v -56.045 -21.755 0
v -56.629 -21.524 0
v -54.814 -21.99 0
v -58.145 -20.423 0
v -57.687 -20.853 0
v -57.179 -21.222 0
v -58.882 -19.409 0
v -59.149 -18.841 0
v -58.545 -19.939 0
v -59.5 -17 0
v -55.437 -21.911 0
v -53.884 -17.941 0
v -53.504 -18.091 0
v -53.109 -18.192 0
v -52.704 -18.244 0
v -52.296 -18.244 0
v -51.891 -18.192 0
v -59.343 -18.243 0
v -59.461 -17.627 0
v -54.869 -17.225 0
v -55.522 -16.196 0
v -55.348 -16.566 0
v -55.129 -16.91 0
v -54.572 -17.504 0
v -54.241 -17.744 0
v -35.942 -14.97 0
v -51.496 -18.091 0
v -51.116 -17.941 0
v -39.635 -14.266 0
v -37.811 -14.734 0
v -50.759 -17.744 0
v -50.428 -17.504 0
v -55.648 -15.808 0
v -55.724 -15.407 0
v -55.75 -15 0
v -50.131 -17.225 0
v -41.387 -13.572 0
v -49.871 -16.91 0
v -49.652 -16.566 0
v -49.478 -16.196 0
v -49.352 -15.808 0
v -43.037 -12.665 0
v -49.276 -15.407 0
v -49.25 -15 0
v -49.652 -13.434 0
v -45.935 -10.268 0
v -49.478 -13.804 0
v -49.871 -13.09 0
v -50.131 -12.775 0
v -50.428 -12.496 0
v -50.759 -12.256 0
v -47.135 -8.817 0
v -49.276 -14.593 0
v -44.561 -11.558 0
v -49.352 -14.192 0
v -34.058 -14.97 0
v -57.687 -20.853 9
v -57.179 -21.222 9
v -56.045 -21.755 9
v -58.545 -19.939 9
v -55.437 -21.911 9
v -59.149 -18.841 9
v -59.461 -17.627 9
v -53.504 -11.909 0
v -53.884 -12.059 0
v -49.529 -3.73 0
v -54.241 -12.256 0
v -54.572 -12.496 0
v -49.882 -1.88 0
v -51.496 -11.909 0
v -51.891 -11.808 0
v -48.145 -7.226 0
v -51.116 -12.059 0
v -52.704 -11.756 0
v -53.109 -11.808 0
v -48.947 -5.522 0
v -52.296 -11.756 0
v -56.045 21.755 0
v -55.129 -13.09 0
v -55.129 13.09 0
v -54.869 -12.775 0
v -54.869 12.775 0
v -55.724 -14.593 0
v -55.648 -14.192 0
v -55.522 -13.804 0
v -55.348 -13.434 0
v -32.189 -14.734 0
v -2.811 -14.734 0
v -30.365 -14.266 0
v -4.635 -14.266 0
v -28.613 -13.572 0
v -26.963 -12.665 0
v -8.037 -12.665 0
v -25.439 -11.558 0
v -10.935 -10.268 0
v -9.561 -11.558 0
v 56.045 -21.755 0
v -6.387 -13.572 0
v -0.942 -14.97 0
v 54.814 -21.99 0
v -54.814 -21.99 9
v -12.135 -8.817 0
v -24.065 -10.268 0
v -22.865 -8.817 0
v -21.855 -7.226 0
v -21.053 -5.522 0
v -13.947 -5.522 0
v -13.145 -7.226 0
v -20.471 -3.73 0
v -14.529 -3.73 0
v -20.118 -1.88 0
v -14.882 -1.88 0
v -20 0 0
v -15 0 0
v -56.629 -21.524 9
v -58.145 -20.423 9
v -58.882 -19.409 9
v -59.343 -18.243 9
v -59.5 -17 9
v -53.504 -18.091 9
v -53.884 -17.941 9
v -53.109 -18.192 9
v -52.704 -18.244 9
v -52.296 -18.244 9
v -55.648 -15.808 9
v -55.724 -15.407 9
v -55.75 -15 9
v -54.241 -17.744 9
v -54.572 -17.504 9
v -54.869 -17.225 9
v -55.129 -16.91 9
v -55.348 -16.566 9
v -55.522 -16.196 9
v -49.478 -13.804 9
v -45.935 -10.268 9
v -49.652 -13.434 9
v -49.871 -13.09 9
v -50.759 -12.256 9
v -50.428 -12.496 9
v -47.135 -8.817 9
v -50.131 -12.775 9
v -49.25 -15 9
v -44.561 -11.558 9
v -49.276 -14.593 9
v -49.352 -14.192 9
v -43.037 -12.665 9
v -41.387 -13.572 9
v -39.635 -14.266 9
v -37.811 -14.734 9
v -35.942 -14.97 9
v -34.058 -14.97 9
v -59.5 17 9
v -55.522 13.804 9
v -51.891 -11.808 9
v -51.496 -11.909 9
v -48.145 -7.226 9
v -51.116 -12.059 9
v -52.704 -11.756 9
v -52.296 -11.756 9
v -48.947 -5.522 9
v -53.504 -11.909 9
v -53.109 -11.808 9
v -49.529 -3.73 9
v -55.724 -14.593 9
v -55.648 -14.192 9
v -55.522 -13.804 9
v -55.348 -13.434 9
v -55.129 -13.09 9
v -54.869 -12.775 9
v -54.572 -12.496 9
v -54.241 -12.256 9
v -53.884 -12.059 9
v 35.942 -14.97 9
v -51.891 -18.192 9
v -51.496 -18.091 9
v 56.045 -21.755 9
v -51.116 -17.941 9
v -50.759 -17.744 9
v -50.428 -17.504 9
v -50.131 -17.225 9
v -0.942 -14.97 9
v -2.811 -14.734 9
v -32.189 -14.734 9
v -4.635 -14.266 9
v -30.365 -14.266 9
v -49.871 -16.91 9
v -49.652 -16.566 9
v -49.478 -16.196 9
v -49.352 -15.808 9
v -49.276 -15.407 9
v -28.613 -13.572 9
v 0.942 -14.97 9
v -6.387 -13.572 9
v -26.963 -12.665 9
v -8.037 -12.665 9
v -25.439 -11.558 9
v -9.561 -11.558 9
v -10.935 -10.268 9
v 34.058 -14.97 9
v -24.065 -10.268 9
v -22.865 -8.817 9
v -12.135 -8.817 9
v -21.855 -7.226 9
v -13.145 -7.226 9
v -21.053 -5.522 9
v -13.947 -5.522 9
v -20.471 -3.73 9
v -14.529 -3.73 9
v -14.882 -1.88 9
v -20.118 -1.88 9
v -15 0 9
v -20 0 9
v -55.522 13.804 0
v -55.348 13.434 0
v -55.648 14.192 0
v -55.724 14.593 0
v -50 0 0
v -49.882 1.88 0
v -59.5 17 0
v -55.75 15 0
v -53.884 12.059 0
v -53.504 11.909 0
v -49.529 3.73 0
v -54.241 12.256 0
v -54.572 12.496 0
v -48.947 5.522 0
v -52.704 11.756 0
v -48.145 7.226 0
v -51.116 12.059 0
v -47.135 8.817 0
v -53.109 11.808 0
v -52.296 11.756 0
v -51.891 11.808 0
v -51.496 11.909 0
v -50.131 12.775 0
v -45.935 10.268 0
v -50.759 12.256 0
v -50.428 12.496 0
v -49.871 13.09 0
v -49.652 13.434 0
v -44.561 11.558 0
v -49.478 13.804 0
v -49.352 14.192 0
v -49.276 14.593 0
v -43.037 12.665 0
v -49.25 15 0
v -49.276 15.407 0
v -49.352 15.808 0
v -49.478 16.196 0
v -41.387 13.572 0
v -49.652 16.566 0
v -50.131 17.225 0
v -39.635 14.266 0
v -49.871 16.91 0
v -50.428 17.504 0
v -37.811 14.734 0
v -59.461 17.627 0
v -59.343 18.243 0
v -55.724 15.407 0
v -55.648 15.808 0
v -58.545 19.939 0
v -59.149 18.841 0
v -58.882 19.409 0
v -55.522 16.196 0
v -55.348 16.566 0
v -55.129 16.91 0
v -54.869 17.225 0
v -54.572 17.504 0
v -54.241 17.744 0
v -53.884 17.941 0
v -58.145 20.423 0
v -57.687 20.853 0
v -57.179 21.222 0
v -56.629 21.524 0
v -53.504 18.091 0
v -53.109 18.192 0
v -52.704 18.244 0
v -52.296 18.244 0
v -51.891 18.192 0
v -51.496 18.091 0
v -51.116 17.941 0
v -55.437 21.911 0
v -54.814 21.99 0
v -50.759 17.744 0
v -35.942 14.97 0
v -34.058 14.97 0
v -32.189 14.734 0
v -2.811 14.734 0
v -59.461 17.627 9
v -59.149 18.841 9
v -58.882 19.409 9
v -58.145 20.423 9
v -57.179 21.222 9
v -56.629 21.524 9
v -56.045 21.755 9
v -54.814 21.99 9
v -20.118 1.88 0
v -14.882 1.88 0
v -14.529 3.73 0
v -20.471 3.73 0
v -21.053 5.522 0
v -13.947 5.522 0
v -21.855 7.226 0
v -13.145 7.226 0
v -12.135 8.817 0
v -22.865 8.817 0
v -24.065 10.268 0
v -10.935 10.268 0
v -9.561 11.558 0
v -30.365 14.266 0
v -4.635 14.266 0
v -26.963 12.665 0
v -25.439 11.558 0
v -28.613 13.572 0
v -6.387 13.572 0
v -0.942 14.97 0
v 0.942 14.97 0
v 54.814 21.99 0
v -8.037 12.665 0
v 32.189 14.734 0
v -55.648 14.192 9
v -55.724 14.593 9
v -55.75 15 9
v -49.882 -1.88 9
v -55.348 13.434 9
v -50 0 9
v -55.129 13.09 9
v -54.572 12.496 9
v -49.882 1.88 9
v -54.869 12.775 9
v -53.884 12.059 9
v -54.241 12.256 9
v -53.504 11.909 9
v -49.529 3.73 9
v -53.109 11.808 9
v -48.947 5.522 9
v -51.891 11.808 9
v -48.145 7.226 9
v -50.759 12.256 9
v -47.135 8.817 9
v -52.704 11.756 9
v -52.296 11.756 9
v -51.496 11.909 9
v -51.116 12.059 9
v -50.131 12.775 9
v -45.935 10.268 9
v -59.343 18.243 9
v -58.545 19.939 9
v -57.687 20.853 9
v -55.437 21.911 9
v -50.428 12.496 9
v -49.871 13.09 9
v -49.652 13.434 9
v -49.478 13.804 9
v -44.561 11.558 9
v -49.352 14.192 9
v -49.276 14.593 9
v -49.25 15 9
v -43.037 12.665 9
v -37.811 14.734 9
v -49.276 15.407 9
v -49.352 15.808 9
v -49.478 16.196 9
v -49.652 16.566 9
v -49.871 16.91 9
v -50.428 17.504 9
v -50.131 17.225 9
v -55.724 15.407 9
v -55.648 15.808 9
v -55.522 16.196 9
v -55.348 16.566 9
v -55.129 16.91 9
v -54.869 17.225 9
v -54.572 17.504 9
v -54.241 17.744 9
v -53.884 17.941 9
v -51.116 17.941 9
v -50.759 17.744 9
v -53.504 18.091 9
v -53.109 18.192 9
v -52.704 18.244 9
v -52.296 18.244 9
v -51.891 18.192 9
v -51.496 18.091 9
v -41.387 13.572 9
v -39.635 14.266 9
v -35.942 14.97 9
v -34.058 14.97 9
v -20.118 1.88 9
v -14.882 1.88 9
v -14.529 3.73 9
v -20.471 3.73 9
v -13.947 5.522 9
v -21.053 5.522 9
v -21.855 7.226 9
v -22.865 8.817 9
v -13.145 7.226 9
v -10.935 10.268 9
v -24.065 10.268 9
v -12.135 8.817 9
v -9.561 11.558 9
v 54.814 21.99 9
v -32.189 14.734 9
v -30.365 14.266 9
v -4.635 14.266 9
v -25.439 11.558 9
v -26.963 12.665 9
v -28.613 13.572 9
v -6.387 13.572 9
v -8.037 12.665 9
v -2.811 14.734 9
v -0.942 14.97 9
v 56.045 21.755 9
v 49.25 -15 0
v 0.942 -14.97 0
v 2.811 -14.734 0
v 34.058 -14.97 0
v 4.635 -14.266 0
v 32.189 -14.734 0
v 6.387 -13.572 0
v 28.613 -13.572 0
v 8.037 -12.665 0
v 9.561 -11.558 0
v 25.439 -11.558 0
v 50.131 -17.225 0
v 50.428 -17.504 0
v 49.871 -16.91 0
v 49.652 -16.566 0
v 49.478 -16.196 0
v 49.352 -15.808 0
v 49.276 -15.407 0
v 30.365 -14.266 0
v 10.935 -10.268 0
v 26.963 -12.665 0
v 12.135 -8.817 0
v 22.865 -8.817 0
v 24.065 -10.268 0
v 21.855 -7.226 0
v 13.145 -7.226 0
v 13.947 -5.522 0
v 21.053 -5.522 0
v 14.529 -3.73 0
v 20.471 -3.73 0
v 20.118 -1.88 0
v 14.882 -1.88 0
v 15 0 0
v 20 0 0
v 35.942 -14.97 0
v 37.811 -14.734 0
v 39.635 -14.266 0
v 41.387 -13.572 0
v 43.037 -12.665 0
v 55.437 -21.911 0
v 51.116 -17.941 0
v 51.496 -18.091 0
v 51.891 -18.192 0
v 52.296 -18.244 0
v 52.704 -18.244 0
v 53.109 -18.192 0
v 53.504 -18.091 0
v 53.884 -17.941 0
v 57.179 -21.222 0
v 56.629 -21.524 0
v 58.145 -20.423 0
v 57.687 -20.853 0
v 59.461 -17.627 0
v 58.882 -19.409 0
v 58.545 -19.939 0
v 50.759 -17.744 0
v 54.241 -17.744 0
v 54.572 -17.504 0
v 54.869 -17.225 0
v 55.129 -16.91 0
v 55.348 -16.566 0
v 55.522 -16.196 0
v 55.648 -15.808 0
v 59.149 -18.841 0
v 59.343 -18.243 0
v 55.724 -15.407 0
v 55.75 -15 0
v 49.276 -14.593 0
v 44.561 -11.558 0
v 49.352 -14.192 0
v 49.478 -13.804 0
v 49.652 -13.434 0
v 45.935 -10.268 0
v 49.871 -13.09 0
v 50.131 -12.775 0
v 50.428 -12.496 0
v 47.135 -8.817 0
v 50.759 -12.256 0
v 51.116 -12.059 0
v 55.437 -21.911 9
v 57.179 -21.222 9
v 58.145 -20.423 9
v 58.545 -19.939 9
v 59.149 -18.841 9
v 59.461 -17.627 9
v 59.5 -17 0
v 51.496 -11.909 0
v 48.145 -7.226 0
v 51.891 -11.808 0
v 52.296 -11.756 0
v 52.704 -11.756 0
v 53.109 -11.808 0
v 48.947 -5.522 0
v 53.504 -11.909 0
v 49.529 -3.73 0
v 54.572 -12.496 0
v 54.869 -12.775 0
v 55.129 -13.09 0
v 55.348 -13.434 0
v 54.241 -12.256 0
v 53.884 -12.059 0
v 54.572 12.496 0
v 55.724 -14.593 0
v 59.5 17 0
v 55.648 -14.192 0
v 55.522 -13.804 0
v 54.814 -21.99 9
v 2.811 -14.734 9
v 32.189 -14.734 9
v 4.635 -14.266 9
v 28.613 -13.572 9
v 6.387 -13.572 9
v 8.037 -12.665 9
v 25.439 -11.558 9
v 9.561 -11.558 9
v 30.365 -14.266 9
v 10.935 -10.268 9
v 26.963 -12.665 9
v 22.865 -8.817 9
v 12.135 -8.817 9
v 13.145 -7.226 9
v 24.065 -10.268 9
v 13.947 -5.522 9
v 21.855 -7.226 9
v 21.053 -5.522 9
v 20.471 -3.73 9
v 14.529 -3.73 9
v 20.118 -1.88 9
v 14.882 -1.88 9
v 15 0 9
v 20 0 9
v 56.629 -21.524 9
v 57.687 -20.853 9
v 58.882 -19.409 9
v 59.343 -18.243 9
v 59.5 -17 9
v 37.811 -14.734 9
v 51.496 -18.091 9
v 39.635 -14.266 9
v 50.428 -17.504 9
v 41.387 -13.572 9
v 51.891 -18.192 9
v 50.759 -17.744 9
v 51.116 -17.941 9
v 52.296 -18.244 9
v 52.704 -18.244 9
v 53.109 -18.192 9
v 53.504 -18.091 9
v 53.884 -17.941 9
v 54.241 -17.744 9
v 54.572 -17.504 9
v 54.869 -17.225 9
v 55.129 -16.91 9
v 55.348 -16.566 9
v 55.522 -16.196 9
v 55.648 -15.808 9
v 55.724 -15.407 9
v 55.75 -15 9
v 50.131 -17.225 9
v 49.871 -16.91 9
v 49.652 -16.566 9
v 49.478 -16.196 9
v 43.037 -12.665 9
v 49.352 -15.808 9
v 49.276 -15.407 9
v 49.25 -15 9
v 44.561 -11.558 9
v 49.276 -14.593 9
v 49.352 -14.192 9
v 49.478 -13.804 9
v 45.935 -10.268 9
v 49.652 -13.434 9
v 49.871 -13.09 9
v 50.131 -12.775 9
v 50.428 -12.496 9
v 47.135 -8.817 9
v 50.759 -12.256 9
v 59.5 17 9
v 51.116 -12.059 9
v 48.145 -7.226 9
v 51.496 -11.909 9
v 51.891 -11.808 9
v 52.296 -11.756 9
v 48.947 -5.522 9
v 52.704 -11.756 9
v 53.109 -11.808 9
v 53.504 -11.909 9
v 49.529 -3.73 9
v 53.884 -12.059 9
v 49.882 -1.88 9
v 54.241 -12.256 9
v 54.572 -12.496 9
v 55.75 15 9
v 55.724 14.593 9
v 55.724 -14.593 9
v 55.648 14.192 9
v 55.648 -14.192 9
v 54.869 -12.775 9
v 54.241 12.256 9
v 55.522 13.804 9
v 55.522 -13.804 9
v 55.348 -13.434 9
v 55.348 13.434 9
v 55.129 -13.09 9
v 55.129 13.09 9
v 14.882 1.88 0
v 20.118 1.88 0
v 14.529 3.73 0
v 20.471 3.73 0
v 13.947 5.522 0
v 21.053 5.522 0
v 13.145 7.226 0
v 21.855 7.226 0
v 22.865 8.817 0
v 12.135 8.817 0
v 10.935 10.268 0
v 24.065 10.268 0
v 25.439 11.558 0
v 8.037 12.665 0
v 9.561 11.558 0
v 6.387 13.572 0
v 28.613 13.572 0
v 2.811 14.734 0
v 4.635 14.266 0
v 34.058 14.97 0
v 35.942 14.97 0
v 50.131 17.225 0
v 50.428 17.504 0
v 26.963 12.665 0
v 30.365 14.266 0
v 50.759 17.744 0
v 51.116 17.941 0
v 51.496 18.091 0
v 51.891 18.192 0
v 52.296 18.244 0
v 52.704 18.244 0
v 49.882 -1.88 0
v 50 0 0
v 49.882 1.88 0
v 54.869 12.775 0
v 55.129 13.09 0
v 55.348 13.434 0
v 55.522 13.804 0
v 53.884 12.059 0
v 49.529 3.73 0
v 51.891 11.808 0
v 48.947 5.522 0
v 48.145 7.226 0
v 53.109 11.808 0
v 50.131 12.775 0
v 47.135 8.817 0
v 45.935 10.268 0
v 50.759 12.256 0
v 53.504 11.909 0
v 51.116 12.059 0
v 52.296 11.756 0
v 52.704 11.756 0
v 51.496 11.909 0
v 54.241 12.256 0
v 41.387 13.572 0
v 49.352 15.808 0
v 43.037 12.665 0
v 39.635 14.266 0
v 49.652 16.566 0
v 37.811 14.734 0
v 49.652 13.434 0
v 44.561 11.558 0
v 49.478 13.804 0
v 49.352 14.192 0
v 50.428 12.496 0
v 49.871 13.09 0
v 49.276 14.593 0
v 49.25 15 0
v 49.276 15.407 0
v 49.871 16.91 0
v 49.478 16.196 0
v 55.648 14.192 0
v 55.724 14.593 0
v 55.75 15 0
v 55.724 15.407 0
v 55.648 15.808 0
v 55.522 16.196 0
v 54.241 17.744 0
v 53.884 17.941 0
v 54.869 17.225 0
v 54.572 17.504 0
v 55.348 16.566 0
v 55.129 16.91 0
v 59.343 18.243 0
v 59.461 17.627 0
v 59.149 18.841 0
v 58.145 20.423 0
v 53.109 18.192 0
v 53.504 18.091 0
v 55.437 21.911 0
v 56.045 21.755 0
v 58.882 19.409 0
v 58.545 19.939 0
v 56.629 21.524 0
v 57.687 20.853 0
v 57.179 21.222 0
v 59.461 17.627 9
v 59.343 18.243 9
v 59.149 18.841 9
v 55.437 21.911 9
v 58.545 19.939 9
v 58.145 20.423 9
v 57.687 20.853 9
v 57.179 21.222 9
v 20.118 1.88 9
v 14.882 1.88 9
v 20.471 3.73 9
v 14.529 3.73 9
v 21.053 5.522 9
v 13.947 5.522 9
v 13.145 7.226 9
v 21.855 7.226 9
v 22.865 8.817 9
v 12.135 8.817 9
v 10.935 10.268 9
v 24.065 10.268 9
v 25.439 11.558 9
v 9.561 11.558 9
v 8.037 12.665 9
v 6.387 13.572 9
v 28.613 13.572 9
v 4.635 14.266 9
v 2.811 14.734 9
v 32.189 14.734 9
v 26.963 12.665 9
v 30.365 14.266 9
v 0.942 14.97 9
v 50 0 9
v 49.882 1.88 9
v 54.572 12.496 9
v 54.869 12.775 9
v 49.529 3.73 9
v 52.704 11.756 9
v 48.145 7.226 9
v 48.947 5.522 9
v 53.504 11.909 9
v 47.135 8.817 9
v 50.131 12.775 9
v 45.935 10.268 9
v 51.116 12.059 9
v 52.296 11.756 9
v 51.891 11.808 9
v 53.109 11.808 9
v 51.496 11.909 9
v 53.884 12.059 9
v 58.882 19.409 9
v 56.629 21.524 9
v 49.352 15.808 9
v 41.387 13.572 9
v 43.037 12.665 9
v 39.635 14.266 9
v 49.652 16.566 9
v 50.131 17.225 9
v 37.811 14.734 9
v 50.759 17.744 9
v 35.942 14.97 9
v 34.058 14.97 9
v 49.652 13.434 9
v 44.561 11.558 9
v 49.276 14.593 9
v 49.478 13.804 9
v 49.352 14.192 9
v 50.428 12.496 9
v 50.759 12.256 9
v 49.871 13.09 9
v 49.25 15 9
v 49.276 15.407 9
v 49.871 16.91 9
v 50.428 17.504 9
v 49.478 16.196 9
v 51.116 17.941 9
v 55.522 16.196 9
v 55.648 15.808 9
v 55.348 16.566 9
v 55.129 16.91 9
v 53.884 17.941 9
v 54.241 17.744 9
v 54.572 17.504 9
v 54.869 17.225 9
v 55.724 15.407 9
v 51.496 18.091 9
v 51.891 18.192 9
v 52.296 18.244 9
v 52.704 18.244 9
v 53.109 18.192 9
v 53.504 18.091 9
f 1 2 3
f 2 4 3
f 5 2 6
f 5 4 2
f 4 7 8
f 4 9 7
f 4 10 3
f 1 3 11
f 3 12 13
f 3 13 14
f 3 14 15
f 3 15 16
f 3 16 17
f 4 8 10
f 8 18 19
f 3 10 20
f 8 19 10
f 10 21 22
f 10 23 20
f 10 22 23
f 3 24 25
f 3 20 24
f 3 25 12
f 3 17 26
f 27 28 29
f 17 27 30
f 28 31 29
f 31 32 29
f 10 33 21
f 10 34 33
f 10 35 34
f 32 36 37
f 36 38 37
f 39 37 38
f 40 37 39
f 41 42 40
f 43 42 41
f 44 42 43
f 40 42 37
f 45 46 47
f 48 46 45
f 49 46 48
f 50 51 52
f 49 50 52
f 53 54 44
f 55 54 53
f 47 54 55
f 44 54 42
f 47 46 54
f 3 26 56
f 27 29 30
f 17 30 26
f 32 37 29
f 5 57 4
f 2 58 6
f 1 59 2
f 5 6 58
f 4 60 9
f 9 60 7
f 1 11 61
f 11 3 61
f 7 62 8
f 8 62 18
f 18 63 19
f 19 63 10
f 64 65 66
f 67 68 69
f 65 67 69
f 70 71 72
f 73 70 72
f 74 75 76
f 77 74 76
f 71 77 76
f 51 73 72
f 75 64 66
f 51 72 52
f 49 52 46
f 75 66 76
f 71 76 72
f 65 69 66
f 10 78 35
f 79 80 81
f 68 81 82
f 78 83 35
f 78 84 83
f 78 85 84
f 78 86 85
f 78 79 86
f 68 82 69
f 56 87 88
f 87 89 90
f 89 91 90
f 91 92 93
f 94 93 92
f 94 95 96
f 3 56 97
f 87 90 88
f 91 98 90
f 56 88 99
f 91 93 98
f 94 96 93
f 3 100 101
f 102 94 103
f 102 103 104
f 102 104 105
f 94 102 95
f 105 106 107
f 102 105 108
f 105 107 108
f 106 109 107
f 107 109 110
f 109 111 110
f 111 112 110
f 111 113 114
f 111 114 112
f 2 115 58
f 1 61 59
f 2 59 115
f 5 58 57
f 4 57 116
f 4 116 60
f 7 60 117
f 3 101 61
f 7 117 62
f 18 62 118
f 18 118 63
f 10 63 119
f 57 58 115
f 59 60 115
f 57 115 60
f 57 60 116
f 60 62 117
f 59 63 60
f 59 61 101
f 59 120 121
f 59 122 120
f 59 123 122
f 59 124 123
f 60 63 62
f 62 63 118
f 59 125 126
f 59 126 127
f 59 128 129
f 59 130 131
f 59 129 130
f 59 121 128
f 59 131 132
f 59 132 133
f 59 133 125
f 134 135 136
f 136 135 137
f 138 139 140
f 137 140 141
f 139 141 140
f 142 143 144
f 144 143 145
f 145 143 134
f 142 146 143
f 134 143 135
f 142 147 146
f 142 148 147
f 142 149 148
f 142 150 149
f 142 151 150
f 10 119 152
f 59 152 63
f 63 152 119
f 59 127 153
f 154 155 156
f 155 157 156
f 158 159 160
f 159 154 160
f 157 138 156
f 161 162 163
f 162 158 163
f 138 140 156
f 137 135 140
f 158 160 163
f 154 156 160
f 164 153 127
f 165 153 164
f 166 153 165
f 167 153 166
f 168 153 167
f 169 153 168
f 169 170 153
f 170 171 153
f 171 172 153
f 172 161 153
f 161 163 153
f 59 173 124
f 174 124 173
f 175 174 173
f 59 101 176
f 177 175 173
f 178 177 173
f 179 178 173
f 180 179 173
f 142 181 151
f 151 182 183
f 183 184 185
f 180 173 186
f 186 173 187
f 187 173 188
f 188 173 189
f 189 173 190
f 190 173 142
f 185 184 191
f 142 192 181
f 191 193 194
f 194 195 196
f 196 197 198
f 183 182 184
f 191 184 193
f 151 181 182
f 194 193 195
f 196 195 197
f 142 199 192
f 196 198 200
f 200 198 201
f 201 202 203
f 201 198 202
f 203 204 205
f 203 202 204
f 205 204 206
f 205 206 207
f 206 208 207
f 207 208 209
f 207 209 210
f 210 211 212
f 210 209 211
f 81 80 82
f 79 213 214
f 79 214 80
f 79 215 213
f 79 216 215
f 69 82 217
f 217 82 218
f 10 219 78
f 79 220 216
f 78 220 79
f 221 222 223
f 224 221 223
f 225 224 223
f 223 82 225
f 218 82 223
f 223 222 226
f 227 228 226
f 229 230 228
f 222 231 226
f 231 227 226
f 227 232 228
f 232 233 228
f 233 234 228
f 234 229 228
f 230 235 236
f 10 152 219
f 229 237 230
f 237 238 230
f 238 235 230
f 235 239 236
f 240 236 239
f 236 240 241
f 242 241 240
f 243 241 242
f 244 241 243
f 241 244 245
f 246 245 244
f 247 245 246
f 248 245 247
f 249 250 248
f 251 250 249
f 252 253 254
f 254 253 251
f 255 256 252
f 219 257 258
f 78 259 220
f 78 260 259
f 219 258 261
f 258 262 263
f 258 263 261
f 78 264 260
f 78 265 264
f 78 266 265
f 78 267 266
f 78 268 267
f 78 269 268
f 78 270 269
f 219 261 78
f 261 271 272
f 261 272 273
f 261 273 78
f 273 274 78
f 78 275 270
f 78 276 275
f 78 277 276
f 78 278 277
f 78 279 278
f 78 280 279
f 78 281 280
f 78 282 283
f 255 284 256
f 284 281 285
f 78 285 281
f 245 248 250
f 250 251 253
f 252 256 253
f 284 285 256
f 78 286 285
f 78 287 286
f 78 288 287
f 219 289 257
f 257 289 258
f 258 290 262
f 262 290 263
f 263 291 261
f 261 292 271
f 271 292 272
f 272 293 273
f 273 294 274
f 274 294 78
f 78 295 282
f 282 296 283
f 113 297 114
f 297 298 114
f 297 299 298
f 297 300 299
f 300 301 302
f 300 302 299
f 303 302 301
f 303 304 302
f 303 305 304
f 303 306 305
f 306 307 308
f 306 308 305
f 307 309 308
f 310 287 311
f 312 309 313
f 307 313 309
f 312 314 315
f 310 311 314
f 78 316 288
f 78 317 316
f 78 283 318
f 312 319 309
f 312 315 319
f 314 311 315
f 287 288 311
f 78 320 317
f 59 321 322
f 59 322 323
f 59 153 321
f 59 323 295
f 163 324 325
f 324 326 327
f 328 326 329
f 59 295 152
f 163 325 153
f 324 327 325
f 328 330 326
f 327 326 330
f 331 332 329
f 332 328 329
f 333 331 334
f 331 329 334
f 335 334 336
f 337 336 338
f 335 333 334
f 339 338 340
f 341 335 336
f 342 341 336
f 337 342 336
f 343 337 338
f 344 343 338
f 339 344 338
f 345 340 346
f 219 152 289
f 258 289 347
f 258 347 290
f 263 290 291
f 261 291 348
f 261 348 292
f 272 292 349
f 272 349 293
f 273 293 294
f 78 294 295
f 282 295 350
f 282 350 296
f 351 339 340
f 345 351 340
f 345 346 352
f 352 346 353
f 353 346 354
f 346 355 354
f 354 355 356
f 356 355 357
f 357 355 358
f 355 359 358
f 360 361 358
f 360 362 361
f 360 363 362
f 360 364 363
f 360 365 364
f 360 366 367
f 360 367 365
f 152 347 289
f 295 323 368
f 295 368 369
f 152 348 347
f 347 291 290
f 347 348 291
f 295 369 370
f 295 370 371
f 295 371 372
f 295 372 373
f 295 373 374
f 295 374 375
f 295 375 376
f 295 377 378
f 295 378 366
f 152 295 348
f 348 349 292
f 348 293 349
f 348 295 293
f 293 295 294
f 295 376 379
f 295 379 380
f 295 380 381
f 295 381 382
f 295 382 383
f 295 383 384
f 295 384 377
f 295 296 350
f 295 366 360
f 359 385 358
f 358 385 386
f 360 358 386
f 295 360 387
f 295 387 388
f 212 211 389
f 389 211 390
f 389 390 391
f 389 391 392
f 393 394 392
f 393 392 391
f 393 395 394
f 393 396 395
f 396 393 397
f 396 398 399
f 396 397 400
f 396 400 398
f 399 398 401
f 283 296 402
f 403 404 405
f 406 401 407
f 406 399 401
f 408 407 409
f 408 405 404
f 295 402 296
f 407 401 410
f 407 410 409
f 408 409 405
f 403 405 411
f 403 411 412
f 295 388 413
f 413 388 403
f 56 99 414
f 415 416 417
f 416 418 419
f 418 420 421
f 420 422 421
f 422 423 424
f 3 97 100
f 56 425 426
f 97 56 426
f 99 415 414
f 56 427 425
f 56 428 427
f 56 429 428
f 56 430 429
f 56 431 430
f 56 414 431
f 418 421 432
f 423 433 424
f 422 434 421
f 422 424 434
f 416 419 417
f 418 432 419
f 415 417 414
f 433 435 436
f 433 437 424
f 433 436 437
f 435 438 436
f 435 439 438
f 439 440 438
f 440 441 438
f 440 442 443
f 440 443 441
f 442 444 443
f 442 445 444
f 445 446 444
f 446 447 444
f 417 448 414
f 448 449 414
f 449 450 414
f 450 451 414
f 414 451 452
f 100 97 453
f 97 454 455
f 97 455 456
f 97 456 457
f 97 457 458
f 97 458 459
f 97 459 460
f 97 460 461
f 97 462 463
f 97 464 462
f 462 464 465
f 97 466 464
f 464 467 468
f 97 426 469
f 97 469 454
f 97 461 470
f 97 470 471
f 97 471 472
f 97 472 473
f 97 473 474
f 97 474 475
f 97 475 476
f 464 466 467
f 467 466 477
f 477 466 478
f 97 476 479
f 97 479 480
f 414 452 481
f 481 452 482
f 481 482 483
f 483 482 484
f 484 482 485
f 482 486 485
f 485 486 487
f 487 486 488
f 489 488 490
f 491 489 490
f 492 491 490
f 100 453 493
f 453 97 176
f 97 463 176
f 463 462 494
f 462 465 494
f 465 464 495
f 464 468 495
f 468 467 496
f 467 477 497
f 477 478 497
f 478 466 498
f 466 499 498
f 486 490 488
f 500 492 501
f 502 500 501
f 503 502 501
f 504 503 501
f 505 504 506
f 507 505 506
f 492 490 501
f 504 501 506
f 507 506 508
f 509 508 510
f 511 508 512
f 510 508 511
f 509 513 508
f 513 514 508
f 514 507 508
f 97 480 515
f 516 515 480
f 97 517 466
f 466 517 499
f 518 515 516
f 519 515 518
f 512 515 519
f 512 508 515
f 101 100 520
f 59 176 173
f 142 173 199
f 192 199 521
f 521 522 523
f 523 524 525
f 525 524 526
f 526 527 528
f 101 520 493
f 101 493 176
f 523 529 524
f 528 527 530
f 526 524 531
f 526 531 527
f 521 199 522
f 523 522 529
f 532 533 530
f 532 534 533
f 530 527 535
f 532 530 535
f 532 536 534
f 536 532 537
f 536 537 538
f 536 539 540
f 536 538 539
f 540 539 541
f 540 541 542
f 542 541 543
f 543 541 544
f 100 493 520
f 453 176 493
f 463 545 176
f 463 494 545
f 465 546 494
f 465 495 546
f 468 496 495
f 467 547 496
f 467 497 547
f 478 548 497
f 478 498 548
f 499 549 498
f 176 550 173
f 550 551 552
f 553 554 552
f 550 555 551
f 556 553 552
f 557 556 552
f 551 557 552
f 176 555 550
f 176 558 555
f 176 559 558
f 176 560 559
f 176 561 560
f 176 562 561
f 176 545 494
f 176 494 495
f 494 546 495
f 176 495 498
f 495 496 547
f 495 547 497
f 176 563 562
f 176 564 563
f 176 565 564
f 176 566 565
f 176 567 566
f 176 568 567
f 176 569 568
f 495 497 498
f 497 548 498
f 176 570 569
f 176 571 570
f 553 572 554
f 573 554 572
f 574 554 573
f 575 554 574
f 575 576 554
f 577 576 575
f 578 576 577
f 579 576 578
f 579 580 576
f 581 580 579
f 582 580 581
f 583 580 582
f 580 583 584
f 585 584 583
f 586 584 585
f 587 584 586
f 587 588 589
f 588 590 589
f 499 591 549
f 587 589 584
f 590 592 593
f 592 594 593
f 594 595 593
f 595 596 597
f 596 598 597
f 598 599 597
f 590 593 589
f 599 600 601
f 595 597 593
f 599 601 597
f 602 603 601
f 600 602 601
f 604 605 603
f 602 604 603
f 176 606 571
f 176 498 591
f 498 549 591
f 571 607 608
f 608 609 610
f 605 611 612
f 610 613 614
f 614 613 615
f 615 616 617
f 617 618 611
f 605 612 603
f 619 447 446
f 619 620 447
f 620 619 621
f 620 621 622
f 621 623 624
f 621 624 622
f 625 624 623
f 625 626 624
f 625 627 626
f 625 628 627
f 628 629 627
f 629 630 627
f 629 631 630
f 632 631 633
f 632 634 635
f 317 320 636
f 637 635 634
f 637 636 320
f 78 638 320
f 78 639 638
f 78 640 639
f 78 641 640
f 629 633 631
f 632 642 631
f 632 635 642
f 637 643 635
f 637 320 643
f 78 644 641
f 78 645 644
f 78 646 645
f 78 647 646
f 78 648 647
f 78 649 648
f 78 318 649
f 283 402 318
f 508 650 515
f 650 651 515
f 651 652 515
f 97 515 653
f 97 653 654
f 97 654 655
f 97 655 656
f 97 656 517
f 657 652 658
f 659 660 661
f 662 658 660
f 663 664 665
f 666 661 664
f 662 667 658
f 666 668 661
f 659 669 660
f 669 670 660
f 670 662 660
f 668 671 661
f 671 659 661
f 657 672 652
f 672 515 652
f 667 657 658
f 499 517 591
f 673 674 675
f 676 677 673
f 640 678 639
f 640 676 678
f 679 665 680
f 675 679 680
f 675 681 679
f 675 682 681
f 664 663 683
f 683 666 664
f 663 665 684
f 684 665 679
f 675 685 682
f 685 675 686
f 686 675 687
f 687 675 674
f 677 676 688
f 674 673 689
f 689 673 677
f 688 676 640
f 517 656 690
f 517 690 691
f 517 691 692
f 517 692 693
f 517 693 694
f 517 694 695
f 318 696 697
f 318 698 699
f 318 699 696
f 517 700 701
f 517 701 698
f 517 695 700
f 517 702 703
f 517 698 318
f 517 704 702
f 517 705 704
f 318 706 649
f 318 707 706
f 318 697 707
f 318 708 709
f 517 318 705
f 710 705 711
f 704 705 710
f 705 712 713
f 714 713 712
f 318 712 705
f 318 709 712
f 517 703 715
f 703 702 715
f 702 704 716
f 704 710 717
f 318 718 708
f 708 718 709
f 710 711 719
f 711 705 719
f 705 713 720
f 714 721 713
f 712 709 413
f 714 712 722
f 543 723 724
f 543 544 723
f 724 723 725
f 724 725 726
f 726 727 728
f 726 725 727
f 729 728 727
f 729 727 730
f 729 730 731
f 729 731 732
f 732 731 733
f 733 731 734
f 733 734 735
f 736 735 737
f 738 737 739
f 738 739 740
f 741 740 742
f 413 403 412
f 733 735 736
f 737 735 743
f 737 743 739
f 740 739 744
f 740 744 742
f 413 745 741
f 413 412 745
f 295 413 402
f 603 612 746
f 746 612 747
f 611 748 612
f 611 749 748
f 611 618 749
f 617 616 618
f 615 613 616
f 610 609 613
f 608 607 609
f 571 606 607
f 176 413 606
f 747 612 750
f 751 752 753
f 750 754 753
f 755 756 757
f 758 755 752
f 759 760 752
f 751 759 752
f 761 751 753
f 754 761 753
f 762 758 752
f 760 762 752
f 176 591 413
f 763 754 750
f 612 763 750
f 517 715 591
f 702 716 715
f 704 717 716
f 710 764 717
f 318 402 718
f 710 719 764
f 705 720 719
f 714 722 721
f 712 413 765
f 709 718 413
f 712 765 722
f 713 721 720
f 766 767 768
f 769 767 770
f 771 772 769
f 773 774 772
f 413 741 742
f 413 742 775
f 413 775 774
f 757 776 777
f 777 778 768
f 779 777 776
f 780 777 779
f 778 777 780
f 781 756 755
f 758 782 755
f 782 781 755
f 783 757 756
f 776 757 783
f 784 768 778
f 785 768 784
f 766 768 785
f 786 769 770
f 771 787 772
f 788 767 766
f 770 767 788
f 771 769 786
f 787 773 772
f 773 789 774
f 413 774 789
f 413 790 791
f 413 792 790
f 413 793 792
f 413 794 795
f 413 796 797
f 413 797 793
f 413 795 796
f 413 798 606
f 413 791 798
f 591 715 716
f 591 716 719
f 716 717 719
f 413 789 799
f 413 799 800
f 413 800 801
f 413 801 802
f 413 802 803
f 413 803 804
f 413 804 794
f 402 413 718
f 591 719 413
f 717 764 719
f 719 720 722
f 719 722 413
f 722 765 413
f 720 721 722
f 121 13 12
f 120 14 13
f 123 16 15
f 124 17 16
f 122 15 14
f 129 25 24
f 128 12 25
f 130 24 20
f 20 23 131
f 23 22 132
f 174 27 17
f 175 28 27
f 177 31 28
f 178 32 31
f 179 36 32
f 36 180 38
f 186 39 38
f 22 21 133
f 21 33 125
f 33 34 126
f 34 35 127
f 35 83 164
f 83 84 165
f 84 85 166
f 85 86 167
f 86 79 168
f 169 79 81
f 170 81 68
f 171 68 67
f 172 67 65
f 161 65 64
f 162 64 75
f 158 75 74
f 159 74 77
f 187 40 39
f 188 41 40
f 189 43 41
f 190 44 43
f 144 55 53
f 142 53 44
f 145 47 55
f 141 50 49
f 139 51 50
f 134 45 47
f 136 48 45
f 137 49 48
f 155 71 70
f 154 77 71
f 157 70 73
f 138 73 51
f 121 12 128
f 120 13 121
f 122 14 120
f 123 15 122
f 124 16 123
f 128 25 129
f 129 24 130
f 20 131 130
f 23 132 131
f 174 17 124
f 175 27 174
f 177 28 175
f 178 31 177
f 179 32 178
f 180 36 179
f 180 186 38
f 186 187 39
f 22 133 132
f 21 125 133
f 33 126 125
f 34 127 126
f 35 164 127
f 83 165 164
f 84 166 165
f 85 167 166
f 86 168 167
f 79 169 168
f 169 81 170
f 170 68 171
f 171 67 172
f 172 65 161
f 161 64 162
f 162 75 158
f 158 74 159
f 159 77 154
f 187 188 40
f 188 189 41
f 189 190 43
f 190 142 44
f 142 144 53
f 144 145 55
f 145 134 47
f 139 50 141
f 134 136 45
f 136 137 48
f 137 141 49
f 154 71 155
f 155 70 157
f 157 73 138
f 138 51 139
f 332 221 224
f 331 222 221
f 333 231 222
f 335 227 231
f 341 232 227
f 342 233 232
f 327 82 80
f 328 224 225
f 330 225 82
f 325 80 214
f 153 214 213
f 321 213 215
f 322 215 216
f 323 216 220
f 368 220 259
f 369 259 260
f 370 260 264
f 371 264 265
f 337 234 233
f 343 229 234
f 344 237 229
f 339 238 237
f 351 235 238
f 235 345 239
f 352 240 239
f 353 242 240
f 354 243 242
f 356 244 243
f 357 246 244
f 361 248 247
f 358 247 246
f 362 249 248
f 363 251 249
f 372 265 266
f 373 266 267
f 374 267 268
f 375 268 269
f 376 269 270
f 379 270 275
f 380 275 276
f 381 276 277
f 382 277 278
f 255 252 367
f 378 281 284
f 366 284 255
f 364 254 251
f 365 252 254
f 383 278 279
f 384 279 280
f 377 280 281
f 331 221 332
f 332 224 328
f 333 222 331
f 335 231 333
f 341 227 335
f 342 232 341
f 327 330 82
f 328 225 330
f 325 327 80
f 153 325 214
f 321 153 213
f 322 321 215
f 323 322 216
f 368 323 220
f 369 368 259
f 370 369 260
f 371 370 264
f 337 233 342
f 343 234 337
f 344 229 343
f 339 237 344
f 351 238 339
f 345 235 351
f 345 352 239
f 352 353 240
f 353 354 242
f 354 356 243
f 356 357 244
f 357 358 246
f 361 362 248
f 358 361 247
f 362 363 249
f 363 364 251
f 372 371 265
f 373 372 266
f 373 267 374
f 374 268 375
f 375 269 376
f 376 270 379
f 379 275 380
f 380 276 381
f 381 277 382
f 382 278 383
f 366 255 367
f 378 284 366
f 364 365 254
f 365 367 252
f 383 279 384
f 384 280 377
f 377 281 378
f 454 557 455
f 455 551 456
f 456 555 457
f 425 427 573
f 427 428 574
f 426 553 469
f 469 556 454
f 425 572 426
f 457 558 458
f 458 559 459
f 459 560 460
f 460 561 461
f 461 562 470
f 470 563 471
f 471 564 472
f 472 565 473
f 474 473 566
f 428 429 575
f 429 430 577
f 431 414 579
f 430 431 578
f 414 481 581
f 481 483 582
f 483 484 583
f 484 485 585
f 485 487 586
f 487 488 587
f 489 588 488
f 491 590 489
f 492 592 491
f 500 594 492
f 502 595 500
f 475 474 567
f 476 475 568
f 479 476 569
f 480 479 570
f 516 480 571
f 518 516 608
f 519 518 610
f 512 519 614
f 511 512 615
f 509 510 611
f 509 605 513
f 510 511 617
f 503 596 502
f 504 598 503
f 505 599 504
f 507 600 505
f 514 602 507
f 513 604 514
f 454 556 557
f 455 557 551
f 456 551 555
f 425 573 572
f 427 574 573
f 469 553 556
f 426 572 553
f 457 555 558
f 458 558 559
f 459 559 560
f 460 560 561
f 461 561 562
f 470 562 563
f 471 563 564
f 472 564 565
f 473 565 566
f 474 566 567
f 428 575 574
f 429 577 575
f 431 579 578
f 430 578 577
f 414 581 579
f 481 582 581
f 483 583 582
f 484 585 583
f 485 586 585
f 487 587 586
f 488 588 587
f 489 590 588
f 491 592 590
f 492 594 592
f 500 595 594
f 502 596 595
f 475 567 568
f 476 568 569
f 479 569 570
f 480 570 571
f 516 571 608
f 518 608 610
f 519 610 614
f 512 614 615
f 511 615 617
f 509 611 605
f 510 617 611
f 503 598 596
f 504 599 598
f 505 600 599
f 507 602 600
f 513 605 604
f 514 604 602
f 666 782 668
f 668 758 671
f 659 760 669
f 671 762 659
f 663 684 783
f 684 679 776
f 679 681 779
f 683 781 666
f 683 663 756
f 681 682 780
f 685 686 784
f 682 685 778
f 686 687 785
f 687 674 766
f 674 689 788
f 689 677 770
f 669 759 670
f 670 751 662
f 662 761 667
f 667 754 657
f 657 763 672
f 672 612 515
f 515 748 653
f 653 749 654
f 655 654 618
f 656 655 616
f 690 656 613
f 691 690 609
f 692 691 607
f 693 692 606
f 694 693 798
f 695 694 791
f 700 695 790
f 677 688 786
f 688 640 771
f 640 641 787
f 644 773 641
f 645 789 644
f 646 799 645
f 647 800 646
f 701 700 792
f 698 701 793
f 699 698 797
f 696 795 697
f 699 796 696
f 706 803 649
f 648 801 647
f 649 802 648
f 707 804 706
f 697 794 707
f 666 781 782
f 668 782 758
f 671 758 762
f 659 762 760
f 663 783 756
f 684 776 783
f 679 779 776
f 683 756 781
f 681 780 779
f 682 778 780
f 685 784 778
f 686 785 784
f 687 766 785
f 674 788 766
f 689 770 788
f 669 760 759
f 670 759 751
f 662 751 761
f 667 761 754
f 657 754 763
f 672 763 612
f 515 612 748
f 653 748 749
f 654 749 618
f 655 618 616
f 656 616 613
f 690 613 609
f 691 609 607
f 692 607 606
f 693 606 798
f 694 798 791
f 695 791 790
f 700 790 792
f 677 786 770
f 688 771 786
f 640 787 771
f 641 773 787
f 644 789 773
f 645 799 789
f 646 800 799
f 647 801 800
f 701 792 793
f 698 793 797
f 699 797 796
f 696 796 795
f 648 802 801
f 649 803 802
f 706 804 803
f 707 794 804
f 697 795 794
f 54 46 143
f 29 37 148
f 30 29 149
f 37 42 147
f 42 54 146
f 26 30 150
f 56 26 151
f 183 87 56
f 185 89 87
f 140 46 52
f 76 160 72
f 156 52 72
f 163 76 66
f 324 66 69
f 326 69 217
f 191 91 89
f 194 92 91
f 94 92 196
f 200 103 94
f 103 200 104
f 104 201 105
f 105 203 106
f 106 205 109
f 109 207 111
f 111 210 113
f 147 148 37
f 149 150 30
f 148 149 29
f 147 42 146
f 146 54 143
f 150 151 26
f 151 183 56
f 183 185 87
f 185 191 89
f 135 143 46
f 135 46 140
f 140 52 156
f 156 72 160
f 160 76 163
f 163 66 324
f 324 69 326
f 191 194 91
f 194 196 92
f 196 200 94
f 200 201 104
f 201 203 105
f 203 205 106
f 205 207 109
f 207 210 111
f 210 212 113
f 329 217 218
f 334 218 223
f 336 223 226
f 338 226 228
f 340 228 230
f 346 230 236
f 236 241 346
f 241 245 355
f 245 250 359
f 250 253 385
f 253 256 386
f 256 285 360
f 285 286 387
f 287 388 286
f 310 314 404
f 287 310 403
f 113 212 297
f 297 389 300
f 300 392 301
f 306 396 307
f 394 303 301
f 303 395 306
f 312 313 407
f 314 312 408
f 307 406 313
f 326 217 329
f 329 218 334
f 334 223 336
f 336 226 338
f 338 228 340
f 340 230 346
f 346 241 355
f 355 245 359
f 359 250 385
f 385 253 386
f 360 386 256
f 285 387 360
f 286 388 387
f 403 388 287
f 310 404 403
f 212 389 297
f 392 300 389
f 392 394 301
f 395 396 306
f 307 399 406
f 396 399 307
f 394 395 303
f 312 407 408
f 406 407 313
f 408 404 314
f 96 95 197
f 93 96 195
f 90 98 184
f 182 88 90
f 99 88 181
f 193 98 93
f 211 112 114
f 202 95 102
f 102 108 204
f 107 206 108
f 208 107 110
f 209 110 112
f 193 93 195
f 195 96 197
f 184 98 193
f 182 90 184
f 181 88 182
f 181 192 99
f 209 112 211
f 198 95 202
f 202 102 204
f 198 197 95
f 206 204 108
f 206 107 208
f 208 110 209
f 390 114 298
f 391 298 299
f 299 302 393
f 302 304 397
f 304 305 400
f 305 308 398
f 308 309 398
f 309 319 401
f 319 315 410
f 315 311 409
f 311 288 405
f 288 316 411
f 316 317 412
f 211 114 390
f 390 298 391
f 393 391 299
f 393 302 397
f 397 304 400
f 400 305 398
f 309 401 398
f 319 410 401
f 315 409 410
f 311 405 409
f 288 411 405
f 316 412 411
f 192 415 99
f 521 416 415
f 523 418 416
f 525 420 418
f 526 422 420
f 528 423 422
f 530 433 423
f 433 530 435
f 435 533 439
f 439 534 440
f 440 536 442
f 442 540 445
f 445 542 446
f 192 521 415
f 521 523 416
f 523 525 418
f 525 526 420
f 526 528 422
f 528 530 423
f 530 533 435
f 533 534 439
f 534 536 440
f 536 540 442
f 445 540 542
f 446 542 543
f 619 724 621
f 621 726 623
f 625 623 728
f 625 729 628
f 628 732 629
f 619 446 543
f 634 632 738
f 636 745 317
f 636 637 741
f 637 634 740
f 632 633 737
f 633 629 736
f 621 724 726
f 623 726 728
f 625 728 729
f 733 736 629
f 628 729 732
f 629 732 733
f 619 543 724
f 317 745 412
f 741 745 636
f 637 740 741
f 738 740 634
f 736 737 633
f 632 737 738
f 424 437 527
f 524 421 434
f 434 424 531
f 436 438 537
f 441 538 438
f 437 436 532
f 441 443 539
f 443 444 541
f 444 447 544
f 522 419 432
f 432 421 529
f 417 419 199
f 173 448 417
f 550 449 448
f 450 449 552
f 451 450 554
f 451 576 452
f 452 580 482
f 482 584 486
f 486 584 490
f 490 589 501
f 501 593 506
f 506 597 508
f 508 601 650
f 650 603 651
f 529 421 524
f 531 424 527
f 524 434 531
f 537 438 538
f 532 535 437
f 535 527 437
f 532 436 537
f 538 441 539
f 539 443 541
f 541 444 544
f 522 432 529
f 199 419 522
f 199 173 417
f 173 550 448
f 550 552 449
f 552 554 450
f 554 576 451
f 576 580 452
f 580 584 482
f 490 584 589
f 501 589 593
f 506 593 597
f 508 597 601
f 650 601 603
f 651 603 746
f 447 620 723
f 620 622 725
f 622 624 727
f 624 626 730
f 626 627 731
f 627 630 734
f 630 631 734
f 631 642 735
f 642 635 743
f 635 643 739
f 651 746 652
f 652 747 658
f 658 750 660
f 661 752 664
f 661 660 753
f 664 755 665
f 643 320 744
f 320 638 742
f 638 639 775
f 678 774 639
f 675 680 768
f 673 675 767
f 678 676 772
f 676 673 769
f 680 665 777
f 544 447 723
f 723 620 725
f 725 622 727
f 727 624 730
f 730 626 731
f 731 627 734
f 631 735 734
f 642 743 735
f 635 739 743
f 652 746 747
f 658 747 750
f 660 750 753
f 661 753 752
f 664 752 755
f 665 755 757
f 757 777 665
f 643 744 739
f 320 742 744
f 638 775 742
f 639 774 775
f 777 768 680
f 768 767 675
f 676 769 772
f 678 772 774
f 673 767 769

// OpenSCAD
$fn = 50;

difference() {
	union() {
		hull() {
			translate(v = [-54.5, 17.0, 0]) {
				cylinder(h = 9, r = 5);
			}
			translate(v = [54.5, 17.0, 0]) {
				cylinder(h = 9, r = 5);
			}
			translate(v = [-54.5, -17.0, 0]) {
				cylinder(h = 9, r = 5);
			}
			translate(v = [54.5, -17.0, 0]) {
				cylinder(h = 9, r = 5);
			}
		}
	}
	union() {
		translate(v = [-52.5, -15.0, -100.0]) {
			cylinder(h = 200, r = 3.25);
		}
		translate(v = [-52.5, 15.0, -100.0]) {
			cylinder(h = 200, r = 3.25);
		}
		translate(v = [52.5, -15.0, -100.0]) {
			cylinder(h = 200, r = 3.25);
		}
		translate(v = [52.5, 15.0, -100.0]) {
			cylinder(h = 200, r = 3.25);
		}
		translate(v = [-52.5, -15.0, -100.0]) {
			cylinder(h = 200, r = 1.8);
		}
		translate(v = [-52.5, 15.0, -100.0]) {
			cylinder(h = 200, r = 1.8);
		}
		translate(v = [52.5, -15.0, -100.0]) {
			cylinder(h = 200, r = 1.8);
		}
		translate(v = [52.5, 15.0, -100.0]) {
			cylinder(h = 200, r = 1.8);
		}
		translate(v = [-35.0, 0, 0.0]) {
			cylinder(h = 9, r = 15.0);
		}
		cylinder(h = 9, r = 15.0);
		translate(v = [35.0, 0, 0.0]) {
			cylinder(h = 9, r = 15.0);
		}
	}
}
